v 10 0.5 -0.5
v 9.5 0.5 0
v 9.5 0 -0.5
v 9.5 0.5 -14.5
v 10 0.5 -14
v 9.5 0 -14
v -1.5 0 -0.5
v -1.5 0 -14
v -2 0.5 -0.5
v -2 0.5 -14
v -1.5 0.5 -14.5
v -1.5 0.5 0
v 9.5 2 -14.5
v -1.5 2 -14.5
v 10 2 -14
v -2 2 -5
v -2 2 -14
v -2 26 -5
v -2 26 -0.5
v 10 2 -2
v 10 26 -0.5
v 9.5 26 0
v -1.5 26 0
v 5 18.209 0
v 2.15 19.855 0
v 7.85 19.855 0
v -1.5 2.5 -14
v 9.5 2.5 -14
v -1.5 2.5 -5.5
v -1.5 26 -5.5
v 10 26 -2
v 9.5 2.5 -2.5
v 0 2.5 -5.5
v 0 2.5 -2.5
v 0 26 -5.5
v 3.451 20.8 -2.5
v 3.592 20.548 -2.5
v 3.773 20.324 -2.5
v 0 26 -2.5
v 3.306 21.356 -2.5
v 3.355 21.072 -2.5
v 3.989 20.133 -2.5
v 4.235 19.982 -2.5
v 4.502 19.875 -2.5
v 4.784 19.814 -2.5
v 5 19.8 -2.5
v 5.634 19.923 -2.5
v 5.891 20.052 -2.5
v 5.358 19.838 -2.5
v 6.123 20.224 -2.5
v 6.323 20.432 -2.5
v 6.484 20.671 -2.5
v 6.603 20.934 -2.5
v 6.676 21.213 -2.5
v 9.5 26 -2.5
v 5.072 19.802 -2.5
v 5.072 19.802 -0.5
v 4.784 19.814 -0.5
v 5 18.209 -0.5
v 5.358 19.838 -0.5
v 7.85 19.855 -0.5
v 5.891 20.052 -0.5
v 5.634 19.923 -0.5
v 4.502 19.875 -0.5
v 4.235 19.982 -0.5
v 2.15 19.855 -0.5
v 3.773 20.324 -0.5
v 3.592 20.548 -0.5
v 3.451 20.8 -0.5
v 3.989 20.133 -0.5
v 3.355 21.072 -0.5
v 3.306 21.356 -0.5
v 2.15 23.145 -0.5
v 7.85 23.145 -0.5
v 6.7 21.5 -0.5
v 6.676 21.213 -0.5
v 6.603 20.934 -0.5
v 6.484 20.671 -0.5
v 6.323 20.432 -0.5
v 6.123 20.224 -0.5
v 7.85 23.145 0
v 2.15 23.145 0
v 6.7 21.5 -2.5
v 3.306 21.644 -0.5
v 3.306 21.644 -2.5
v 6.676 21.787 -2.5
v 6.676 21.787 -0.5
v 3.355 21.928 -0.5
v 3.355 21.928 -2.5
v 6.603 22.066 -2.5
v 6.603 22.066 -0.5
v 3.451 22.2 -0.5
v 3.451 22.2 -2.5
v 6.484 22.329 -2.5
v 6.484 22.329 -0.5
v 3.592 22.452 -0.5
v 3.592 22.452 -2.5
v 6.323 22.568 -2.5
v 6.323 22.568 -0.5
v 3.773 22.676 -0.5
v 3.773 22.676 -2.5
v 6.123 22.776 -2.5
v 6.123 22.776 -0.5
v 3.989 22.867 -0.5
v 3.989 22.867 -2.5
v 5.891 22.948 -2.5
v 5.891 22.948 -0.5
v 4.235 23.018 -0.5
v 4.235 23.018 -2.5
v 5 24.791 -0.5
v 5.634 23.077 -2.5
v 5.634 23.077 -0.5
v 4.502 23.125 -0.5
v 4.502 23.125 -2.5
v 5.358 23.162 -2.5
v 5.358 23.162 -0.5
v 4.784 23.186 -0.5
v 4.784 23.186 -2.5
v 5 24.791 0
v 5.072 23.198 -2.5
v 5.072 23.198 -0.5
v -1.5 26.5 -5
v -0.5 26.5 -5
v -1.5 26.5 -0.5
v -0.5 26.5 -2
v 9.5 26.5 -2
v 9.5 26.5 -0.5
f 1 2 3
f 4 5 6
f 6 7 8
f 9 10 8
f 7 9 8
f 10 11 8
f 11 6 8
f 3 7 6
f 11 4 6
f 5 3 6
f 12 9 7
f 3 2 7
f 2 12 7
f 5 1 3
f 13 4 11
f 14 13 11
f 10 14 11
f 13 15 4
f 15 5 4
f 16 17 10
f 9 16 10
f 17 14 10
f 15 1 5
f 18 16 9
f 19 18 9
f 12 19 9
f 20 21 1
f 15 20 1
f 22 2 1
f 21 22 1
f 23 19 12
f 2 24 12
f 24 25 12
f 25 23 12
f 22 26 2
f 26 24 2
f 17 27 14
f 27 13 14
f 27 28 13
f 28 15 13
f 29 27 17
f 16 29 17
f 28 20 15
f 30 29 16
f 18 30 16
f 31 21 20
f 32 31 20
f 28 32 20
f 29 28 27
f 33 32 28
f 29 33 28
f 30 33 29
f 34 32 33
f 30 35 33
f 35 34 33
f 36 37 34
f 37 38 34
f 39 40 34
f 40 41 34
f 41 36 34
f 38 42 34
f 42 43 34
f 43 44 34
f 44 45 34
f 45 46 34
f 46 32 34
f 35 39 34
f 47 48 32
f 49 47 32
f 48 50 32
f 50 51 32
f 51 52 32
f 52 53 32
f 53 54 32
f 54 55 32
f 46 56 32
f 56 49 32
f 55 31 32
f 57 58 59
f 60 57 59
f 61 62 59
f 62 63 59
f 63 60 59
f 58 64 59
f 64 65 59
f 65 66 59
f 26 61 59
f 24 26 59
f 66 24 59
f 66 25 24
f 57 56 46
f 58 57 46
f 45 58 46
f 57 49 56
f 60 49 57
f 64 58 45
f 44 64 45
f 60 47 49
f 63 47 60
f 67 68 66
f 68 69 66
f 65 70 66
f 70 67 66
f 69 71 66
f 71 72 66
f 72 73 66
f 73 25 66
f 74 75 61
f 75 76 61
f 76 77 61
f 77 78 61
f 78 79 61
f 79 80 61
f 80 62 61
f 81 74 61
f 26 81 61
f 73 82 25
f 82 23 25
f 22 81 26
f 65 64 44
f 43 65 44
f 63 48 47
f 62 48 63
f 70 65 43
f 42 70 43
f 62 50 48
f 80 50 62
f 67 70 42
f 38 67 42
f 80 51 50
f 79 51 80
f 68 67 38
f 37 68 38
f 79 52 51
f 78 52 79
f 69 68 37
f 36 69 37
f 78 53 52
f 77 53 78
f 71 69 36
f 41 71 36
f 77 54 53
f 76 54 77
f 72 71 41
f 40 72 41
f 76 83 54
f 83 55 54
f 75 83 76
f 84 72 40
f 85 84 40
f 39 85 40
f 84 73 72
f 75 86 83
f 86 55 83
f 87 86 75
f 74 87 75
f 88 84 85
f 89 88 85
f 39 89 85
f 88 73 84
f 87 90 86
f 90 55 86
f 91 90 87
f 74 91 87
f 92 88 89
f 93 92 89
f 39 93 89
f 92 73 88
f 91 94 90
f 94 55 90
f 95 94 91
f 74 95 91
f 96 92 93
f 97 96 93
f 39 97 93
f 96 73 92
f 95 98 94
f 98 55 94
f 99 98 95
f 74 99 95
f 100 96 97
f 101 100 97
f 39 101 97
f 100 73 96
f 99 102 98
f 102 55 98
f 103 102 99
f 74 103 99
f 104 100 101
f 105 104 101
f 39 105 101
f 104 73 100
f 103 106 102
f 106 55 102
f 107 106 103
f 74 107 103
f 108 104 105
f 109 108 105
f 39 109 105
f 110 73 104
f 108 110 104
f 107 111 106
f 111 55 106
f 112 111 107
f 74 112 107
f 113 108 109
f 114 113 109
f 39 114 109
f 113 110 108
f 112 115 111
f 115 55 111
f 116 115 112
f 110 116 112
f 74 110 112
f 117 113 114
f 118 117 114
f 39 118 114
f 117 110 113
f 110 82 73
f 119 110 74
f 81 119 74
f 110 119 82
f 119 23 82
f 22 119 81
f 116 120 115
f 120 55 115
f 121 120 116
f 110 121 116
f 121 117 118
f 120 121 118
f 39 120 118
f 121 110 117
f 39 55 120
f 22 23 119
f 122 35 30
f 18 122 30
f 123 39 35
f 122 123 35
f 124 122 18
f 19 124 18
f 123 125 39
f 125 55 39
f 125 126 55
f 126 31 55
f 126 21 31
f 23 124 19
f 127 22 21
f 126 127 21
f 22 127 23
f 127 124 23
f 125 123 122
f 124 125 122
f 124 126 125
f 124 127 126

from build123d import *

# Parameters (mm, degrees)
SKETCH1_W           = 2.5
SKETCH1_H           = 24
SKETCH1_W_2         = 12
SKETCH1_H_2         = 2.5
BOSS_EXTRUDE1_DEPTH = 10
CUT_EXTRUDE1_DEPTH  = 10
CUT_EXTRUDE2_DEPTH  = 0.5
SKETCH5_W           = 3
SKETCH5_H           = 24
SKETCH5_W_2         = 9
SKETCH5_H_2         = 2.5
BOSS_EXTRUDE2_DEPTH = 2
CHAMFER1_SIZE       = 0.5


with BuildPart() as part:
    # Sketch1 → Boss-Extrude1 (new body)
    with BuildSketch(Plane(origin=(0, 0, 0), x_dir=(0, 0, -1), z_dir=(1, 0, 0))):
        with Locations((1.25, 14.5)):
            Rectangle(SKETCH1_W, SKETCH1_H)
        with Locations((8.5, 1.25)):
            Rectangle(SKETCH1_W_2, SKETCH1_H_2)
        with Locations((1.25, 1.25)):
            Rectangle(SKETCH1_W, SKETCH1_H_2)
    extrude(amount=BOSS_EXTRUDE1_DEPTH)

    # Sketch2 → Cut-Extrude1 (cut)
    with BuildSketch(Plane.XY):
        with BuildLine():
            ThreePointArc((6.7, 21.5), (6.202081528, 22.702081528), (5, 23.2))
            Line((5, 23.2), (5, 19.8))
            ThreePointArc((5, 19.8), (6.202081528, 20.297918472), (6.7, 21.5))
        make_face()
        with BuildLine():
            Line((5, 19.8), (5, 23.2))
            ThreePointArc((5, 23.2), (3.3, 21.5), (5, 19.8))
        make_face()
    extrude(amount=-CUT_EXTRUDE1_DEPTH, mode=Mode.SUBTRACT)

    # Sketch4 → Cut-Extrude2 (cut)
    with BuildSketch(Plane.XY):
        Polygon((5, 24.790896534), (2.15, 23.145448267), (2.15, 19.854551733), (5, 18.209103466), (7.85, 19.854551733), (7.85, 23.145448267), align=None)
    extrude(amount=-CUT_EXTRUDE2_DEPTH, mode=Mode.SUBTRACT)

    # Sketch5 → Boss-Extrude2 (add)
    with BuildSketch(Plane.ZY):
        with Locations((-4, 14.5)):
            Rectangle(SKETCH5_W, SKETCH5_H)
        Polygon((-5.5, 0), (0, 0), (0, 26.5), (-2.5, 26.5), (-2.5, 2.5), (-5.5, 2.5), align=None)
        with Locations((-10, 1.25)):
            Rectangle(SKETCH5_W_2, SKETCH5_H_2)
    extrude(amount=BOSS_EXTRUDE2_DEPTH)

    # Chamfer1
    chamfer1_edges = [part.edges().sort_by_distance(p)[0] for p in [
        (10, 0, -7.25),
        (4, 26.5, 0),
        (5, 26.5, -2.5),
        (4, 2.5, -14.5),
        (4, 0, -14.5),
        (4, 0, 0),
        (10, 1.25, -14.5),
        (10, 2.5, -8.5),
        (10, 14.5, -2.5),
        (10, 26.5, -1.25),
        (10, 13.25, 0),
        (-2, 14.5, -5.5),
        (-1, 26.5, -5.5),
        (0, 26.5, -4),
        (-2, 2.5, -10),
        (-2, 1.25, -14.5),
        (-2, 0, -7.25),
        (-2, 13.25, 0),
        (-2, 26.5, -2.75),
    ]]
    chamfer(chamfer1_edges, length=CHAMFER1_SIZE)


solid = part.part
